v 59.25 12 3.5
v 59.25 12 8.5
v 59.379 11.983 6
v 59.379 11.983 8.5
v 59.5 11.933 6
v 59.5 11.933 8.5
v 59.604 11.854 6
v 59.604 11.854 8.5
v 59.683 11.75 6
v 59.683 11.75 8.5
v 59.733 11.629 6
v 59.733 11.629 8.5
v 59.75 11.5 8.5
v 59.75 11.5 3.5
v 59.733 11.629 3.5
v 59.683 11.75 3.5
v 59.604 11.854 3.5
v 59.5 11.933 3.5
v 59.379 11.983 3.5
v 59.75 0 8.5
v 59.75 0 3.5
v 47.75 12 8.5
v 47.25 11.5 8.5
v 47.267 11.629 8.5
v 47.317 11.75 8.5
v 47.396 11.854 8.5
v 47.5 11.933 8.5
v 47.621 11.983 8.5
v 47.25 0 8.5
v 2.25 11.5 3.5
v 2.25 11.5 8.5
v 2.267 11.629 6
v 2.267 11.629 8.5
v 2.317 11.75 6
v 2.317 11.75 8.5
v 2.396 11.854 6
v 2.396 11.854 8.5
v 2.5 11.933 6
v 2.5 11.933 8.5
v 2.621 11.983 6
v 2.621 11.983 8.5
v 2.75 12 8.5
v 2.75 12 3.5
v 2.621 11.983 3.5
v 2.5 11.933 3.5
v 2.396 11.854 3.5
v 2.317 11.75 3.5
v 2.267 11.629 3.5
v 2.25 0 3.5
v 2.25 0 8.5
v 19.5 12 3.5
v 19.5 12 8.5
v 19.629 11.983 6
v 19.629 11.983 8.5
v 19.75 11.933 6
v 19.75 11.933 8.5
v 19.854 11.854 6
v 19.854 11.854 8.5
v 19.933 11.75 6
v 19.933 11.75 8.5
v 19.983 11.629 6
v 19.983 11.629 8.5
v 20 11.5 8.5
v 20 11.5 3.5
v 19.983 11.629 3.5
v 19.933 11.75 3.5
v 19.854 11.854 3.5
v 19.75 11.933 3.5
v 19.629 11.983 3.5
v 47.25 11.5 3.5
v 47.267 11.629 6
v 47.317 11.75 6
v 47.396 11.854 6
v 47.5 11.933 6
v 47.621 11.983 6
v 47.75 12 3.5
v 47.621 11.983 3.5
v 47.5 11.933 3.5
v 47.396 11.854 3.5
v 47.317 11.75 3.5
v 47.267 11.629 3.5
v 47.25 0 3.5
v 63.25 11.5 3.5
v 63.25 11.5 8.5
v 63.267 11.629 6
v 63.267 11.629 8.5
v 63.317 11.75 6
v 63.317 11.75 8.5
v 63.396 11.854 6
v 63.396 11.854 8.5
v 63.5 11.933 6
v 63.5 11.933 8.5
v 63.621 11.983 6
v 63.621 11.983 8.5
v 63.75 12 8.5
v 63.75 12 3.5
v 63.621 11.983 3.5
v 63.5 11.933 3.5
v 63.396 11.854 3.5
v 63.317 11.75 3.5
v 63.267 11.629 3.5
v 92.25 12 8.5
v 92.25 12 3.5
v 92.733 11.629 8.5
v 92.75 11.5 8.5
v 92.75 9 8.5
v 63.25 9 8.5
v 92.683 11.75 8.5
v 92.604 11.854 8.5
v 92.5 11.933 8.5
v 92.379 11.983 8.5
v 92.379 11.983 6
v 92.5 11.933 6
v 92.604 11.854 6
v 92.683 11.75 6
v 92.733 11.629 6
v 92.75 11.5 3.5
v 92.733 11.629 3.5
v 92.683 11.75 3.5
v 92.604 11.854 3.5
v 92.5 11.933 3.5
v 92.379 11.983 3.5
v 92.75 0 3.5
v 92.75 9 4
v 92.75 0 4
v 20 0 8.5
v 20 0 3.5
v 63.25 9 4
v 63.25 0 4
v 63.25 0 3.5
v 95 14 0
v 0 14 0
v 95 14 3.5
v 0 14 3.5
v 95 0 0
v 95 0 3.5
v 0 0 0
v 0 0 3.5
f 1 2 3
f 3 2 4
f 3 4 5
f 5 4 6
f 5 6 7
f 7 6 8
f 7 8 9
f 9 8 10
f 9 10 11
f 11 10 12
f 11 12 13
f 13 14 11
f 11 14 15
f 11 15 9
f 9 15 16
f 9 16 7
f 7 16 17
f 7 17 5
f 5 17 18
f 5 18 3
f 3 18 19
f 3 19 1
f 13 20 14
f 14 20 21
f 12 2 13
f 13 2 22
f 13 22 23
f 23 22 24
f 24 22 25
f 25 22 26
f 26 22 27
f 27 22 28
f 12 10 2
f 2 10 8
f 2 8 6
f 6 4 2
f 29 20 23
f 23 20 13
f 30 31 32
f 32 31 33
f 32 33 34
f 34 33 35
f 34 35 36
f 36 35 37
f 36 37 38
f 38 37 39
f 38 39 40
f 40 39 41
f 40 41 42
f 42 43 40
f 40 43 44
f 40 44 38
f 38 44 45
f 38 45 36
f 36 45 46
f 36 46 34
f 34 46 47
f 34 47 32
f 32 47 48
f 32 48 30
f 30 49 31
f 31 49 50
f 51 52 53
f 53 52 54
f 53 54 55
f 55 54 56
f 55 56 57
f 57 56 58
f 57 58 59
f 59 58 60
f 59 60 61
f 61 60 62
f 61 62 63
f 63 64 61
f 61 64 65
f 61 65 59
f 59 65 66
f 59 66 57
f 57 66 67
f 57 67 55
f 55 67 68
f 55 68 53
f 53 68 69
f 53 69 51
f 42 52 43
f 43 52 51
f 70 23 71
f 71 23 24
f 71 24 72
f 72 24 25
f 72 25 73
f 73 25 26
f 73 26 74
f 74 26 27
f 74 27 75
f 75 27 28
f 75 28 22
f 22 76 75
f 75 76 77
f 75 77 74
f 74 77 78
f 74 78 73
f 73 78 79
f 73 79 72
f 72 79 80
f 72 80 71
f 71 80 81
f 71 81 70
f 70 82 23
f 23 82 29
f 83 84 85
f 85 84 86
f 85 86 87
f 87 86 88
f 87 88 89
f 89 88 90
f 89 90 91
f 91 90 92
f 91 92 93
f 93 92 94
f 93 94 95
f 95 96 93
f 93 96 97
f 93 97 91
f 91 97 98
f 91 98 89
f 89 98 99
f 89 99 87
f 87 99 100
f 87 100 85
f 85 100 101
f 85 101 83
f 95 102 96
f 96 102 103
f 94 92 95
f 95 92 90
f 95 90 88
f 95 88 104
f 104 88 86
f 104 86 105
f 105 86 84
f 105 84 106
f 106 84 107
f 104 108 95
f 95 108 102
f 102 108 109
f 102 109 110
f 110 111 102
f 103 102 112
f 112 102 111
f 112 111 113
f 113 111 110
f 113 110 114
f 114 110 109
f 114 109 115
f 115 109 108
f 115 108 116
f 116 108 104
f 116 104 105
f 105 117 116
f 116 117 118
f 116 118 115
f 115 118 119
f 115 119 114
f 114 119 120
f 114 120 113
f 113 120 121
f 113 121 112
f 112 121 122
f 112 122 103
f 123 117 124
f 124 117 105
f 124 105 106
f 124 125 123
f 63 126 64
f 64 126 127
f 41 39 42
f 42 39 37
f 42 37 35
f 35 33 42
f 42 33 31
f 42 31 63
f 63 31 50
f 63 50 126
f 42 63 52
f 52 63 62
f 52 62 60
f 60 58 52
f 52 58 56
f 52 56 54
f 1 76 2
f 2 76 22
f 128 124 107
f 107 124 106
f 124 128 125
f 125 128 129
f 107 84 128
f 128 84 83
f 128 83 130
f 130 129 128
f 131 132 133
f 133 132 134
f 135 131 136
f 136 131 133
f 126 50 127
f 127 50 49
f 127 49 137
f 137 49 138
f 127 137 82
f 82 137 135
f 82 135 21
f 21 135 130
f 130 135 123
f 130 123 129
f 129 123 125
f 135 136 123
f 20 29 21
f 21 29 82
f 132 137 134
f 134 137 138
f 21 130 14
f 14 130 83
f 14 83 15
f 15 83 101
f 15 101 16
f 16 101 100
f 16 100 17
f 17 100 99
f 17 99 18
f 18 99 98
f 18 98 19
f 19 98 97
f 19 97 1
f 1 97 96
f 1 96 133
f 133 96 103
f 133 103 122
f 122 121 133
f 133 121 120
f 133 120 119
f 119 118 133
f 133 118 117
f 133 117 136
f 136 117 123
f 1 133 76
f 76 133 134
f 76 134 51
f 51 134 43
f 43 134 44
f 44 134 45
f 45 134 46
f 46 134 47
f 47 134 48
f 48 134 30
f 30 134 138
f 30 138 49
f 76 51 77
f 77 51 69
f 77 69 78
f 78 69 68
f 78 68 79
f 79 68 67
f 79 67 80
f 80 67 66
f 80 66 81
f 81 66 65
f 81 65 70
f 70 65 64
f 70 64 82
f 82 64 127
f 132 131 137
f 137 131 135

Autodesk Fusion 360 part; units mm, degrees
sketch "Sketch1" plane through (0, 0, 0) normal (0, 0, 1) x (1, 0, 0)
  line L0 (0, 0) -> (95, 0)
  line L1 (95, 0) -> (95, 14)
  line L2 (95, 14) -> (0, 14)
  line L3 (0, 14) -> (0, 0)
  dimension "d1" = 95
  dimension "d2" = 14
extrude "Extrude1" add sketch "Sketch1" along normal blind 3.5
sketch "Sketch2" plane through (0, 0, 3.5) normal (0, 0, 1) x (-1, 0, 0)
  line L0 (0, -14) -> (0, 0)
  line L1 (0, 0) -> (-95, 0)
  line L2 (-95, 0) -> (-95, -14)
  line L3 (-95, -14) -> (0, -14)
  line L4 (-2.25, 0) -> (-59.75, 0)
  line L5 (-59.75, 0) -> (-59.75, -12)
  line L6 (-59.75, -12) -> (-2.25, -12)
  line L7 (-2.25, -12) -> (-2.25, 0)
  line L8 (-63.25, 0) -> (-92.75, 0)
  line L9 (-92.75, 0) -> (-92.75, -12)
  line L10 (-92.75, -12) -> (-63.25, -12)
  line L11 (-63.25, -12) -> (-63.25, 0)
  dimension "d5" = 57.5
  dimension "d6" = 12
  dimension "d7" = 2.25
  dimension "d8" = 29.5
  dimension "d9" = 12
  dimension "d22" = 2.25
extrude "Extrude6" add sketch "Sketch2" along normal blind 0.5 contours L1 L8 L9 L10 L11
extrude "Extrude7" add sketch "Sketch2" along normal blind 5 contours L1 L4 L5 L6 L7
sketch "Sketch5" plane through (0, 0, 4) normal (0, 0, 1) x (-1, 0, 0)
  line L0 (-63.25, -12) -> (-63.25, 0)
  line L1 (-63.25, 0) -> (-92.75, 0)
  line L2 (-92.75, 0) -> (-92.75, -12)
  line L3 (-92.75, -12) -> (-63.25, -12)
  line L4 (-63.25, -12) -> (-92.75, -12)
  line L5 (-92.75, -12) -> (-92.75, -9)
  line L6 (-92.75, -9) -> (-63.25, -9)
  line L7 (-63.25, -9) -> (-63.25, -12)
  dimension "d27" = 3
extrude "Extrude8" add sketch "Sketch5" along normal blind 4.5 contours L0 L2 L3 L4 L5 L6 L7
sketch "Sketch6" plane through (0, 0, 8.5) normal (0, 0, 1) x (-1, 0, 0)
  line L0 (-2.25, -12) -> (-2.25, 0)
  line L1 (-2.25, 0) -> (-59.75, 0)
  line L2 (-59.75, 0) -> (-59.75, -12)
  line L3 (-59.75, -12) -> (-2.25, -12)
  line L4 (-20, -12) -> (-47.25, -12)
  line L5 (-47.25, -12) -> (-47.25, 0)
  line L6 (-47.25, 0) -> (-20, 0)
  line L7 (-20, 0) -> (-20, -12)
  line L8 (-2.25, -12) -> (-2.25, 0)
  dimension "d30" = 17.75
  dimension "d31" = 27.25
extrude "Extrude9" cut sketch "Sketch6" against normal blind 5 contours L1 L3 L4 L5 L6 L7
fillet "Fillet1" radius 0.5 6 edges at (92.75, 12, 6) (63.25, 12, 6) (47.25, 12, 6) (20, 12, 6) (2.25, 12, 6) (59.75, 12, 6)
